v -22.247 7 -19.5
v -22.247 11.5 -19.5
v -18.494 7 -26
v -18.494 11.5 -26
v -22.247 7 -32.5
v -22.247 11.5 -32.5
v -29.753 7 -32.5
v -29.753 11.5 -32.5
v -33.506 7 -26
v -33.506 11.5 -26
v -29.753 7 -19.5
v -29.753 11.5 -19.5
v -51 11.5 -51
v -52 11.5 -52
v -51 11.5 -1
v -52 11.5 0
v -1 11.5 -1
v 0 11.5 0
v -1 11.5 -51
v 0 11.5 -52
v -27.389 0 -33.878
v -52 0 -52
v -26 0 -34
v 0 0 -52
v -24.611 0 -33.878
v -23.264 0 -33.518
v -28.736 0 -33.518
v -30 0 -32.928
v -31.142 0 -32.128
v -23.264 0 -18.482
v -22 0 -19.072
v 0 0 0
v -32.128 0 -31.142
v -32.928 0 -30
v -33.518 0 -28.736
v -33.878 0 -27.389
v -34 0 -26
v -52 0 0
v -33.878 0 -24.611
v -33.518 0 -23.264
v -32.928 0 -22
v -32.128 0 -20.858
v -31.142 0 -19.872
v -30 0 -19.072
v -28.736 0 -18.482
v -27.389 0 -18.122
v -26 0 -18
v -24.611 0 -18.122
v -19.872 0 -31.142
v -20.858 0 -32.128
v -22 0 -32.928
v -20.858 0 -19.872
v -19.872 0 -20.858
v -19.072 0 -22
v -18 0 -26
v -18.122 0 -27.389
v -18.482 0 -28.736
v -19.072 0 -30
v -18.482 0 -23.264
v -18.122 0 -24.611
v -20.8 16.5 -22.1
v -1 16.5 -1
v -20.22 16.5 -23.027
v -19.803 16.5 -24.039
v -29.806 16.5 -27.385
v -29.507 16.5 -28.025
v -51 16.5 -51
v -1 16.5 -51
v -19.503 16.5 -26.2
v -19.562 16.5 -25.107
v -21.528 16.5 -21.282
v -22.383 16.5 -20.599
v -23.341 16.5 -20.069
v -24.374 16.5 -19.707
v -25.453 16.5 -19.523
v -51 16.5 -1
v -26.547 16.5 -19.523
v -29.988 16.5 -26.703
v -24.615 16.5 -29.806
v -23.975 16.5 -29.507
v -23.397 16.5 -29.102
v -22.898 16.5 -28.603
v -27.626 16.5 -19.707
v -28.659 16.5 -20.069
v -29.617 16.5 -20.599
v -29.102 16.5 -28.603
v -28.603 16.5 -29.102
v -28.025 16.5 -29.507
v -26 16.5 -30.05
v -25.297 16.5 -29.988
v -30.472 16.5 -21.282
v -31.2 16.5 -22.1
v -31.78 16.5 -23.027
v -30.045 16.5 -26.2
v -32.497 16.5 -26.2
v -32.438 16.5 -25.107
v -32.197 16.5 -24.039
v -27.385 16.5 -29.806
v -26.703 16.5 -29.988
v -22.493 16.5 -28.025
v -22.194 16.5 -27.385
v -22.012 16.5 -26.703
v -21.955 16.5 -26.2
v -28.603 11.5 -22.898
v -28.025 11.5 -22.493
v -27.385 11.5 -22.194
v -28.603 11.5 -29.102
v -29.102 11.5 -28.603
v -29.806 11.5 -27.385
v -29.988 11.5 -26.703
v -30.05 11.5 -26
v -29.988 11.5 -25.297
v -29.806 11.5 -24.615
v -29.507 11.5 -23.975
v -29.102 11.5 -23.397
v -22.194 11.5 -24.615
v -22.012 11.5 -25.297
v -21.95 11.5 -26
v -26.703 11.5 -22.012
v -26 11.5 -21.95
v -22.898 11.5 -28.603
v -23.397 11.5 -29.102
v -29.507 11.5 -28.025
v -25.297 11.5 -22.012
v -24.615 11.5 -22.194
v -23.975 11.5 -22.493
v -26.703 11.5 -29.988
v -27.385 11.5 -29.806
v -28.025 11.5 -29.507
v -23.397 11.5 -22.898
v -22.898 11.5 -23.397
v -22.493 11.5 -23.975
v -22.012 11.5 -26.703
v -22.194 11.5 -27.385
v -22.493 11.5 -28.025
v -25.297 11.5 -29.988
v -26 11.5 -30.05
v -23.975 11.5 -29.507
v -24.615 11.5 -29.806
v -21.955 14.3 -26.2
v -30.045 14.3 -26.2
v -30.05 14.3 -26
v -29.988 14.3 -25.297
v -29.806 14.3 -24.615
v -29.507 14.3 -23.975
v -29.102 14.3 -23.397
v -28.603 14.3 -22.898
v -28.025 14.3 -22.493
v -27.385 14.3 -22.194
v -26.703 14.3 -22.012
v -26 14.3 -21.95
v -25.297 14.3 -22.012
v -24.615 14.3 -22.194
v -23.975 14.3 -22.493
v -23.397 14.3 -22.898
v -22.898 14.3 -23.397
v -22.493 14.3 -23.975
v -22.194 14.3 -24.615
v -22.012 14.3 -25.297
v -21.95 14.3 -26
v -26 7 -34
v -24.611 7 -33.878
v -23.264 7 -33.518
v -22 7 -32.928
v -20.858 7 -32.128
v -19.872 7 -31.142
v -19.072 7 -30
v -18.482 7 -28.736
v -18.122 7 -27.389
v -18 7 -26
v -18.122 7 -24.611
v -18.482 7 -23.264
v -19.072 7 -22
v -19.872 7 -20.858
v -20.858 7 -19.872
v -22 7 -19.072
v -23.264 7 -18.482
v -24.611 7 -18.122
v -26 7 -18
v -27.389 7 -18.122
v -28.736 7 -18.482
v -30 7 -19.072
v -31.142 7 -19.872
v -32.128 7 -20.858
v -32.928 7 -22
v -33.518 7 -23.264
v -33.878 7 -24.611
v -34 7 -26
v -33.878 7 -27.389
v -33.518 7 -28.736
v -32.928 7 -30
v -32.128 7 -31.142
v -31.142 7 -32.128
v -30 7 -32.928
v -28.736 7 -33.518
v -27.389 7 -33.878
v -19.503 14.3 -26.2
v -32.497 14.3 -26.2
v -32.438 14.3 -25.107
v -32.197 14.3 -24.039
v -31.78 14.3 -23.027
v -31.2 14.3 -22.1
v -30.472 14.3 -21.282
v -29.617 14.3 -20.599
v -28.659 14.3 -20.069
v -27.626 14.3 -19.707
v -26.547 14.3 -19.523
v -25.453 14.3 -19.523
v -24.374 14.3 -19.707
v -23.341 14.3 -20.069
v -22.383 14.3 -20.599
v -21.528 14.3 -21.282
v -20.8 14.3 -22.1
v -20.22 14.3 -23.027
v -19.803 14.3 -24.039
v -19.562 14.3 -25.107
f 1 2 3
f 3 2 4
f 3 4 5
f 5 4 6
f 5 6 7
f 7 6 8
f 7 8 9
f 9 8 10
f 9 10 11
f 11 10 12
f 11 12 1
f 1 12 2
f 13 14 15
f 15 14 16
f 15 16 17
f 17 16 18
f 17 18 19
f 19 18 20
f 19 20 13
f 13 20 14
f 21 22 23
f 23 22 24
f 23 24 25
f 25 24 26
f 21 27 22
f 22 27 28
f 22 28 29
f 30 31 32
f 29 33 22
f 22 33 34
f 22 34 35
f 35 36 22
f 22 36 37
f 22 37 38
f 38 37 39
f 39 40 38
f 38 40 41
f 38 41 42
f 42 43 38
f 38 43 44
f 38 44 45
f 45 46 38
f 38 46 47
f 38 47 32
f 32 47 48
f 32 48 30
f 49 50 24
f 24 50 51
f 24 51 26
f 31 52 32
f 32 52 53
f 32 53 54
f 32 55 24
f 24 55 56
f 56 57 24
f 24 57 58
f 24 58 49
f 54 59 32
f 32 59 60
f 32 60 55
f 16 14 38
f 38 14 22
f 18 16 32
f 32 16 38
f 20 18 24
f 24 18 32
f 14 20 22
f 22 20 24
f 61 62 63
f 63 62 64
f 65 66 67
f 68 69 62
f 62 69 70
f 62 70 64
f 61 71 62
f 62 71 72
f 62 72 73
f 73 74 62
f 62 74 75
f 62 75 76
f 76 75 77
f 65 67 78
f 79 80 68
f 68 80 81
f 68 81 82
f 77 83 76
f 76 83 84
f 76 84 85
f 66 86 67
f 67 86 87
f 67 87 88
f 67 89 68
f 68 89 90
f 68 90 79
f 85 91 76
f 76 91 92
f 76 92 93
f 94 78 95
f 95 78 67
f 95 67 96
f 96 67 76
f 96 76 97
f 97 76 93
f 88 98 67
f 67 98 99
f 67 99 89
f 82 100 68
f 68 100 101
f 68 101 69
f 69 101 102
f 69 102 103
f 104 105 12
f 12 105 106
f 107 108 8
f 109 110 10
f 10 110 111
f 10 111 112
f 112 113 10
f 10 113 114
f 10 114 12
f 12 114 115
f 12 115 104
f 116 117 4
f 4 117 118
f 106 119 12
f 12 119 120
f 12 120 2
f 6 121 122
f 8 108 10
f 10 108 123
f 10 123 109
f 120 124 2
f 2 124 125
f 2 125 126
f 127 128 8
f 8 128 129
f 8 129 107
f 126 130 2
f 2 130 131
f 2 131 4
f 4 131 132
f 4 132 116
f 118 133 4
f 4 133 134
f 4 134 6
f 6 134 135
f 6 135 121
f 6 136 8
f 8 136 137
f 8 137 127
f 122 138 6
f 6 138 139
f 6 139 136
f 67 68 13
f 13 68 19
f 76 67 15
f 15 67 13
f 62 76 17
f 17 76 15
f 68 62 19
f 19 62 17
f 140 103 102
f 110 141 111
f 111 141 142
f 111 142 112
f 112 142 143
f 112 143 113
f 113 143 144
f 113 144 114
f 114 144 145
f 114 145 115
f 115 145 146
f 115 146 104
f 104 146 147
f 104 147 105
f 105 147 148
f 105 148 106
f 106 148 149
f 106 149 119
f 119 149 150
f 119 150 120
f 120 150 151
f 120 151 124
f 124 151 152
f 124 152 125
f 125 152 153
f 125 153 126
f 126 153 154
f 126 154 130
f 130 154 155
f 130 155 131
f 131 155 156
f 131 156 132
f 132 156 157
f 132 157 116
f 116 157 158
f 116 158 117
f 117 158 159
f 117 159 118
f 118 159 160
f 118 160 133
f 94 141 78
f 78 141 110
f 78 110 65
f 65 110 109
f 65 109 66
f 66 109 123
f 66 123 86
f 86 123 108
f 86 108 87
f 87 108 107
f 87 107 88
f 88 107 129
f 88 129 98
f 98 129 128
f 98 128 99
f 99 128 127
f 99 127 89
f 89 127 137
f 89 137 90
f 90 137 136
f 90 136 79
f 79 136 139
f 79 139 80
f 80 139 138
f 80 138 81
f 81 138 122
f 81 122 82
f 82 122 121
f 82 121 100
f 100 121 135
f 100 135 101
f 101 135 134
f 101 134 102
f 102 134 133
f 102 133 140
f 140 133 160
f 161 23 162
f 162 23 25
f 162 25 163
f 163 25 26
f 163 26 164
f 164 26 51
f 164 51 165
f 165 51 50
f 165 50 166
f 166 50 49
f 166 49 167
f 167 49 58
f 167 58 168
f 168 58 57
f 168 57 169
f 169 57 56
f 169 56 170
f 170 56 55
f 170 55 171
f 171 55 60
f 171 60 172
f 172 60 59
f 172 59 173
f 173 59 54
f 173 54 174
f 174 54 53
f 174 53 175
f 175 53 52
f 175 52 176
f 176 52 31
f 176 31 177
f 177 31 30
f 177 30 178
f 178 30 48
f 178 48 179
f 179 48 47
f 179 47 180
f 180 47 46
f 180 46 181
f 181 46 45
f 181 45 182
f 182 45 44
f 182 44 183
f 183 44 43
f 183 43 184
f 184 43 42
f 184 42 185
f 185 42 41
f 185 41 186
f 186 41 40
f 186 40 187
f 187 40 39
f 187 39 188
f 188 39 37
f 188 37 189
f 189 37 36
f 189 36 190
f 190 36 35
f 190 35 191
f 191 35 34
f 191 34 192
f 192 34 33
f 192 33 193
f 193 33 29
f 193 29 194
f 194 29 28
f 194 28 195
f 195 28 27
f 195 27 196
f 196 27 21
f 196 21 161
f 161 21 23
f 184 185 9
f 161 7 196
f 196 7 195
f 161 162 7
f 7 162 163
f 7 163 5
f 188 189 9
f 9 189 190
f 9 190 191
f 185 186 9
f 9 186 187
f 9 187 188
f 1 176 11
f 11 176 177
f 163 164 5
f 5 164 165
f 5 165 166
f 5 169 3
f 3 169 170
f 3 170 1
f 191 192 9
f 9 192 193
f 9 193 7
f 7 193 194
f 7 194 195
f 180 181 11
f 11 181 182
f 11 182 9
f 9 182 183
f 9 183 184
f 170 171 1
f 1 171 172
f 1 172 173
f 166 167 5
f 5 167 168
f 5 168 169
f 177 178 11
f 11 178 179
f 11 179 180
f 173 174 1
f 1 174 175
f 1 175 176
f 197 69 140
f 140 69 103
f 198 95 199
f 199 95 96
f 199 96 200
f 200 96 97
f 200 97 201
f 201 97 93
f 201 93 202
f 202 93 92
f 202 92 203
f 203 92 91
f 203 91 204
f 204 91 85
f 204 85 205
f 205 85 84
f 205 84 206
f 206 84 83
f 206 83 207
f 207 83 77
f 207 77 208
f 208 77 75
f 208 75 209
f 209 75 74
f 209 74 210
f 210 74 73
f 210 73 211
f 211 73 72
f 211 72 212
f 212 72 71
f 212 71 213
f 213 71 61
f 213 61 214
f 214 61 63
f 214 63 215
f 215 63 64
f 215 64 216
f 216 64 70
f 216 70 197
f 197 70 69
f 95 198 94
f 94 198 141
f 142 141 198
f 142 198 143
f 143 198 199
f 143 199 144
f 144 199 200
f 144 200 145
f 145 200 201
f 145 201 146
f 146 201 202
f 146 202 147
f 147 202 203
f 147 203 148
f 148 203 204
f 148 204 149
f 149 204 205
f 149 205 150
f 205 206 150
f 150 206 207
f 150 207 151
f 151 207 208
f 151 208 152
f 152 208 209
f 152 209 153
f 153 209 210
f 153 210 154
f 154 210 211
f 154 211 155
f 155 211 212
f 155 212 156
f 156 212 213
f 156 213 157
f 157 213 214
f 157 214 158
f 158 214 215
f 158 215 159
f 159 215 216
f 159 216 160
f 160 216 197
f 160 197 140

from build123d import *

# Parameters (mm, degrees)
SKETCH1_W           = 52
SKETCH1_H           = 52
BOSS_EXTRUDE1_DEPTH = 11.5
SKETCH2_W           = 50
SKETCH2_H           = 50
SKETCH2_R           = 4.05
BOSS_EXTRUDE2_DEPTH = 5
SKETCH3_R           = 8
CUT_EXTRUDE1_DEPTH  = 7
CUT_EXTRUDE2_DEPTH  = 2.2


with BuildPart() as part:
    # Sketch1 → Boss-Extrude1 (new body)
    with BuildSketch(Plane(origin=(0, 0, 0), x_dir=(1, 0, 0), z_dir=(0, 1, 0))):
        with Locations((-26, 26)):
            Rectangle(SKETCH1_W, SKETCH1_H)
        Polygon((-18.494446501, 26), (-22.24722325, 32.5), (-29.75277675, 32.5), (-33.505553499, 26), (-29.75277675, 19.5), (-22.24722325, 19.5), align=None, mode=Mode.SUBTRACT)
    extrude(amount=BOSS_EXTRUDE1_DEPTH)

    # Sketch2 → Boss-Extrude2 (add)
    with BuildSketch(Plane(origin=(0, 11.5, 0), x_dir=(1, 0, 0), z_dir=(0, 1, 0))):
        with Locations((-26, 26)):
            Rectangle(SKETCH2_W, SKETCH2_H)
        with Locations(Location((-26, 26, 0), (0, 0, 270))):
            Circle(SKETCH2_R, mode=Mode.SUBTRACT)
    extrude(amount=BOSS_EXTRUDE2_DEPTH)

    # Sketch3 → Cut-Extrude1 (cut)
    with BuildSketch(Plane.XZ):
        with Locations(Location((-26, -26, 0), (0, 0, 270))):
            Circle(SKETCH3_R)
    extrude(amount=-CUT_EXTRUDE1_DEPTH, mode=Mode.SUBTRACT)

    # Sketch4 → Cut-Extrude2 (cut)
    with BuildSketch(Plane(origin=(0, 16.5, 0), x_dir=(1, 0, 0), z_dir=(0, 1, 0))):
        with BuildLine():
            Line((-32.496922348, 26.2), (-19.503077652, 26.2))
            ThreePointArc((-19.503077652, 26.2), (-26, 19.5), (-32.496922348, 26.2))
        make_face()
    extrude(amount=-CUT_EXTRUDE2_DEPTH, mode=Mode.SUBTRACT)


solid = part.part
